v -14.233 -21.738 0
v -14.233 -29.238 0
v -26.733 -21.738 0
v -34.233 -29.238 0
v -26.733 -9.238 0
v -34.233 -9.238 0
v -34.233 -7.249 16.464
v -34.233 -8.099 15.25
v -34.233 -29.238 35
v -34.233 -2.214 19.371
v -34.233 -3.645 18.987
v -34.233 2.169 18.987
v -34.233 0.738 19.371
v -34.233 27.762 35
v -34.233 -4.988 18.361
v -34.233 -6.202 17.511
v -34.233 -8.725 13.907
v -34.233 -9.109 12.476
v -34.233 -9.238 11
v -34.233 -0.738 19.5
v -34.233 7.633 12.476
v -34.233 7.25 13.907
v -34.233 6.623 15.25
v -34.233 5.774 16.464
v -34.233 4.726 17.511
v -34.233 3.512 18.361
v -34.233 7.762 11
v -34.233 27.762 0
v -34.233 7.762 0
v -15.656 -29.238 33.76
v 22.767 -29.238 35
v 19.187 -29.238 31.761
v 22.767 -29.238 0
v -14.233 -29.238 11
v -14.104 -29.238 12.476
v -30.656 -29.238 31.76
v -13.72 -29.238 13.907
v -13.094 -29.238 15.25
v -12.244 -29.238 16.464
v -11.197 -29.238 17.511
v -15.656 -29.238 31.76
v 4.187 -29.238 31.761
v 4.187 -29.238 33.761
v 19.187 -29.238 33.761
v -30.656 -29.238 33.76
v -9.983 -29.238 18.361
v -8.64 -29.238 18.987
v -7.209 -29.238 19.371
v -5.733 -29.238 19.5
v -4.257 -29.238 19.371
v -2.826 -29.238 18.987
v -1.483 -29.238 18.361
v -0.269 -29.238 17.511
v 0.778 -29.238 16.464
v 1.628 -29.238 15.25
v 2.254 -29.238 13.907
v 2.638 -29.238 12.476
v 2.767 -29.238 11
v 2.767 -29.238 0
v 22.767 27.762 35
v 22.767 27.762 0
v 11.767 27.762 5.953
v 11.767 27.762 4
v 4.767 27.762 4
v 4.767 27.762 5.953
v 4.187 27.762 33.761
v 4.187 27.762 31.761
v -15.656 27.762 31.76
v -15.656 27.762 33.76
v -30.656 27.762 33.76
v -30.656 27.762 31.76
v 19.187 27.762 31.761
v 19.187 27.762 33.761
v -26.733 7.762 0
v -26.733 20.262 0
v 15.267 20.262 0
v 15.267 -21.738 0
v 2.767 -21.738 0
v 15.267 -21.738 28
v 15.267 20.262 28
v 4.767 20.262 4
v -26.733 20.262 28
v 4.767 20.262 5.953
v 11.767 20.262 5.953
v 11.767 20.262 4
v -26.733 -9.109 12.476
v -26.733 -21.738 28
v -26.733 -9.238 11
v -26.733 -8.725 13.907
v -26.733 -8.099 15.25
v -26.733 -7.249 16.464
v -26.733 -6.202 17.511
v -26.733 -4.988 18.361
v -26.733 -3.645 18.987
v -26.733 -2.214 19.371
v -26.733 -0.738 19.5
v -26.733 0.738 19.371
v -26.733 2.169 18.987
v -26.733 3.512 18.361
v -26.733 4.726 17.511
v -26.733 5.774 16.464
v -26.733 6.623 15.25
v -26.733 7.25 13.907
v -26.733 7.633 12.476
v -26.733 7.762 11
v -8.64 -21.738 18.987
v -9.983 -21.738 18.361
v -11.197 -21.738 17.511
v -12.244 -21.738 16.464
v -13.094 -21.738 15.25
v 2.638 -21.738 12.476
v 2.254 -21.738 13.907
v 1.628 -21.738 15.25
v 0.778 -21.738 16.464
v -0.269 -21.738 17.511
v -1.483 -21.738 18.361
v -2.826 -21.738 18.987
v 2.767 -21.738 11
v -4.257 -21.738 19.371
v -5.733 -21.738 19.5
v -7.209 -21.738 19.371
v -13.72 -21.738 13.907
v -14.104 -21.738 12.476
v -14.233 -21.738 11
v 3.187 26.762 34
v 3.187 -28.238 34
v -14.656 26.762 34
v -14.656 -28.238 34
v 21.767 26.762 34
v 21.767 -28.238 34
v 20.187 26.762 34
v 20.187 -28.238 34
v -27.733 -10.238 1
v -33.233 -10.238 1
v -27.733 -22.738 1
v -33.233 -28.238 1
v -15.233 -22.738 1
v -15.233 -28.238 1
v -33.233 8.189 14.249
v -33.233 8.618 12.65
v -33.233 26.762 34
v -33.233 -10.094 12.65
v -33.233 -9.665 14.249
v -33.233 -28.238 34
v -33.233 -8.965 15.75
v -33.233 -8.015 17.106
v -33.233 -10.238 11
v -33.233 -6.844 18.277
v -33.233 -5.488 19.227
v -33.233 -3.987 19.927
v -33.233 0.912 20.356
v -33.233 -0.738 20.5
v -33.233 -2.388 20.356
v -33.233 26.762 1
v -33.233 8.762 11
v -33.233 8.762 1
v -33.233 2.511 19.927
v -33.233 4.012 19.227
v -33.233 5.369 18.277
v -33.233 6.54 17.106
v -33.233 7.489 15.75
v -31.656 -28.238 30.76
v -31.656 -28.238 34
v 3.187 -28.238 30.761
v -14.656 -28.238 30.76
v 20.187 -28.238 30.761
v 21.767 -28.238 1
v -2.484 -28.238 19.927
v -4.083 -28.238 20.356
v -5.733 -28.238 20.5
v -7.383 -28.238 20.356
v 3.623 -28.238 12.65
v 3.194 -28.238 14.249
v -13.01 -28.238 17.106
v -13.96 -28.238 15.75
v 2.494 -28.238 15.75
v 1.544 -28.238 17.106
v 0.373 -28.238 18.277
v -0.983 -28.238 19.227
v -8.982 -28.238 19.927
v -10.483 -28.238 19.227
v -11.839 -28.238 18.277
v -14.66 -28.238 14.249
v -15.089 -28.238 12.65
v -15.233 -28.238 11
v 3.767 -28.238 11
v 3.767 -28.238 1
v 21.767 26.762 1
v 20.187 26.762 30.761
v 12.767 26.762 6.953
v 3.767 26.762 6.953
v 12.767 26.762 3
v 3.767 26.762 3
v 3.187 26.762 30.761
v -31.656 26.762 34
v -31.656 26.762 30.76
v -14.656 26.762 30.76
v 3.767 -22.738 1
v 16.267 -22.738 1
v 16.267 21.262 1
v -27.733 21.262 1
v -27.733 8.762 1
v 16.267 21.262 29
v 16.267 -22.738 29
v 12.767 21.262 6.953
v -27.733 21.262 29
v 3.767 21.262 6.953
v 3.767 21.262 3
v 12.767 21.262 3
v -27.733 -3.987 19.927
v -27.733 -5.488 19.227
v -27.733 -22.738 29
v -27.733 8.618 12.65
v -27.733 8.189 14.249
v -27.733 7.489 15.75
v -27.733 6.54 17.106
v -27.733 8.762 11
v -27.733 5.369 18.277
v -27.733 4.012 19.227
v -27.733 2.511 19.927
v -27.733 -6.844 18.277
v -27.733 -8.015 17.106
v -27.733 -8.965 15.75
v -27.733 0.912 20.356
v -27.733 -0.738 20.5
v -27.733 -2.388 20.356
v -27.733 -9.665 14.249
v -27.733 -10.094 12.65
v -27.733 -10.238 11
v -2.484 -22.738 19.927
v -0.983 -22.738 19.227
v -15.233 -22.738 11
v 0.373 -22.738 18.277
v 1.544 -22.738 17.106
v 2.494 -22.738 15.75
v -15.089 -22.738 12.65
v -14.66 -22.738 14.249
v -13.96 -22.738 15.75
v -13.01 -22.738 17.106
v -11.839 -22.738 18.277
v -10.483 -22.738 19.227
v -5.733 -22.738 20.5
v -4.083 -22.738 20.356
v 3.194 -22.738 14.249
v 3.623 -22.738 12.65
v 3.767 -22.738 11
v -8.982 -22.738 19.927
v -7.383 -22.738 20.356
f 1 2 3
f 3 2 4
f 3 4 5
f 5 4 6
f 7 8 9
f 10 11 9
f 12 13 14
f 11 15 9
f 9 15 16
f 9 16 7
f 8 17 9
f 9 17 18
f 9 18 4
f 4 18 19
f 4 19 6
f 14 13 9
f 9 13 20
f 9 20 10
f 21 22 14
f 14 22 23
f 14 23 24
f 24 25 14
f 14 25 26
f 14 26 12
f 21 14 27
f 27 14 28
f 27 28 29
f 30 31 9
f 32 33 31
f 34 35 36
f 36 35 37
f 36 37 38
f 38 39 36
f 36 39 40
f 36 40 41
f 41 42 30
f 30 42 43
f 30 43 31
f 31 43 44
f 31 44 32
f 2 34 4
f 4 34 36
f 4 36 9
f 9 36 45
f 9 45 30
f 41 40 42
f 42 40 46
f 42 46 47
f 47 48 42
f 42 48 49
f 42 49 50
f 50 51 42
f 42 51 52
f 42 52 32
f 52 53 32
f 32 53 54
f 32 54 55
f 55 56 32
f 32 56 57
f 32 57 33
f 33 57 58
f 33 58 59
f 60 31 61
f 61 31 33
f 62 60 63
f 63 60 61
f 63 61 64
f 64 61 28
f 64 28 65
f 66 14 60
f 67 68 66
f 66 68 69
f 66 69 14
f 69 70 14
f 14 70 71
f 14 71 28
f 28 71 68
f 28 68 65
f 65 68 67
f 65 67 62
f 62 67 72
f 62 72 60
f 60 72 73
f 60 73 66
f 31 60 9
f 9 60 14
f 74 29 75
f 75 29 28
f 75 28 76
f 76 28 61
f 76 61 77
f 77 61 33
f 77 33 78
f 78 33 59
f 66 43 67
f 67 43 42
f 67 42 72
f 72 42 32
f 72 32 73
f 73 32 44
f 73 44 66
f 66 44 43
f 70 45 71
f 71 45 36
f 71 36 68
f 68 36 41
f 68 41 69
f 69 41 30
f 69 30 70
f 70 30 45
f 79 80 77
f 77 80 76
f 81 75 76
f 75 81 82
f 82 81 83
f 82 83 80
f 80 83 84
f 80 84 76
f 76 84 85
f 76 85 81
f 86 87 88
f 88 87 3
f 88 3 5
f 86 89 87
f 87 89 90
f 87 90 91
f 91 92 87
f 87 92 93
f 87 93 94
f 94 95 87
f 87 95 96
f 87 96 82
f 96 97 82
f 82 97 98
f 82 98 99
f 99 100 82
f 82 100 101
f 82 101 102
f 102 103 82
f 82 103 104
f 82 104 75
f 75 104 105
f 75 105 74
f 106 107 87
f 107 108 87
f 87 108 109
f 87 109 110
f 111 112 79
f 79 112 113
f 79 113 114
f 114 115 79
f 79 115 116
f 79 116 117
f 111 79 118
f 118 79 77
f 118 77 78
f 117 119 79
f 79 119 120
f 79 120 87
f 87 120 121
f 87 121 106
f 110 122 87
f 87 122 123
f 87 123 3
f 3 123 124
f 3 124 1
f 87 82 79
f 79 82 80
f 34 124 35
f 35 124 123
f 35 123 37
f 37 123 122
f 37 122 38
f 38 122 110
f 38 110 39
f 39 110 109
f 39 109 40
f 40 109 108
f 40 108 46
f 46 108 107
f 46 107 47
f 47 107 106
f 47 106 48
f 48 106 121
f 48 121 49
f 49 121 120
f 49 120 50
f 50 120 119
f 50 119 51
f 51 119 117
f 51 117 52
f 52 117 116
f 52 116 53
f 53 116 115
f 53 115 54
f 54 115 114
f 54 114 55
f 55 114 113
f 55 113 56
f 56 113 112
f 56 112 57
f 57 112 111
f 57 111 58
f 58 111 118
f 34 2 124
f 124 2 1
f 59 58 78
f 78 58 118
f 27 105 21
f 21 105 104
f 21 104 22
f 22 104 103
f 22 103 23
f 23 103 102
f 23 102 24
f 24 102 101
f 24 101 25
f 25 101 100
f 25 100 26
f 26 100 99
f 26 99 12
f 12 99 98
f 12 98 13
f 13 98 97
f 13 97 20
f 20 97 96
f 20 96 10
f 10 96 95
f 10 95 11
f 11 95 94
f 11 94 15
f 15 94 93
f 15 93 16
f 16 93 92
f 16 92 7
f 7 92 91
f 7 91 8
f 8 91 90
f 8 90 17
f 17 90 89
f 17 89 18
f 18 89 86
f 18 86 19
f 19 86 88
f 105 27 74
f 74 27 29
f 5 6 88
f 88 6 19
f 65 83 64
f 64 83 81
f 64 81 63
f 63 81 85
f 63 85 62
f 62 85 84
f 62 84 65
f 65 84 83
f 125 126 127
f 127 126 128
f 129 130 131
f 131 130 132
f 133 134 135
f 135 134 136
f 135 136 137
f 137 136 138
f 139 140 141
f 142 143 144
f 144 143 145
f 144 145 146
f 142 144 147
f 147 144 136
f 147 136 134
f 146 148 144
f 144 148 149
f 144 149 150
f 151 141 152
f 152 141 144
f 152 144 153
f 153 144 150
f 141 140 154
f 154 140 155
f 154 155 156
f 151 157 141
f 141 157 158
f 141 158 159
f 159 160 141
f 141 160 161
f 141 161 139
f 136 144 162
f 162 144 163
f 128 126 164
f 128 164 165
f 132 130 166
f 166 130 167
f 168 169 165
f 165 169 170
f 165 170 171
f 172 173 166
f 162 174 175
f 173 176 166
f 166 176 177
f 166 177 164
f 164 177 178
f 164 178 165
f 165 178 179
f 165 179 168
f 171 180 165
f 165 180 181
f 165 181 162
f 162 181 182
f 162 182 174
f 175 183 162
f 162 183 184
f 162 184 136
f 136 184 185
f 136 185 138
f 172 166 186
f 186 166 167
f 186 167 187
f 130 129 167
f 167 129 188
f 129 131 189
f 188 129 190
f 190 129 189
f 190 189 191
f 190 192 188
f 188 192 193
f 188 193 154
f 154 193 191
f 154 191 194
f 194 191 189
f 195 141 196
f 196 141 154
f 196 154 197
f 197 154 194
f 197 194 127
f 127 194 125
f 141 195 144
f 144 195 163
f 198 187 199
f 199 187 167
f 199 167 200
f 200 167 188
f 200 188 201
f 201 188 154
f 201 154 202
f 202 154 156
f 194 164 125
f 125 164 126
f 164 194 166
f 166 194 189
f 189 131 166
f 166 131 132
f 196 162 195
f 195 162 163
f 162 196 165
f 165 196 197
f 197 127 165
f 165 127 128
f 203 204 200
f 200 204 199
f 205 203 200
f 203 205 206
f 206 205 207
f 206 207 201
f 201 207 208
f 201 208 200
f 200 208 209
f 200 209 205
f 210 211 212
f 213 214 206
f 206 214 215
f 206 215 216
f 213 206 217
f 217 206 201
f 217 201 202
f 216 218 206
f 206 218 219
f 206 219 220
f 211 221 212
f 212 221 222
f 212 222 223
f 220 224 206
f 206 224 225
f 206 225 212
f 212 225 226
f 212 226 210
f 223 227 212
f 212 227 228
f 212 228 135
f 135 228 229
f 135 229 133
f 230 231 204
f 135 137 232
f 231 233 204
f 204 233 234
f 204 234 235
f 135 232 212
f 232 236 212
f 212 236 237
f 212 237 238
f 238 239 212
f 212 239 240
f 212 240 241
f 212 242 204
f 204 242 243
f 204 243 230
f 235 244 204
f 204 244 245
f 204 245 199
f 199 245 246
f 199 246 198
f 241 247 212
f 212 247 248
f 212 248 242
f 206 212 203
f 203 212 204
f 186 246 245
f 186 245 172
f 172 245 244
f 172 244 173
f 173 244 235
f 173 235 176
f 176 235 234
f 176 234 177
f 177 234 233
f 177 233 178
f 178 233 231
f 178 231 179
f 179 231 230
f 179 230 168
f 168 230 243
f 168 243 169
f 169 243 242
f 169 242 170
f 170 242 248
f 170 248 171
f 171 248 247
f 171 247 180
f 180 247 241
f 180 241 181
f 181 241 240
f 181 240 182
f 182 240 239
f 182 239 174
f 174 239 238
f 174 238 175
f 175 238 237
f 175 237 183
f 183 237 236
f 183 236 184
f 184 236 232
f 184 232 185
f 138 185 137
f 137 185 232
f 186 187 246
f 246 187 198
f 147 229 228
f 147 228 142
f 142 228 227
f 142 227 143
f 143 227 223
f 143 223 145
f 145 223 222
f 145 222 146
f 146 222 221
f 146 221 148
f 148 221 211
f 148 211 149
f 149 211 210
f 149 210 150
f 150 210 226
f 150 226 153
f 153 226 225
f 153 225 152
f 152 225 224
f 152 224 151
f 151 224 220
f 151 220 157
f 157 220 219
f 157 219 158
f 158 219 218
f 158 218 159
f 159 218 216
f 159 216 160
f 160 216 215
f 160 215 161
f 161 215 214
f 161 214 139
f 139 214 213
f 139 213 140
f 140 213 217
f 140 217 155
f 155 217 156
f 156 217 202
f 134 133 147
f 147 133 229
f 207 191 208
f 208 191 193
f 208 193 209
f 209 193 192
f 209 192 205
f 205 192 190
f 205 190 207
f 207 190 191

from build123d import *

# Parameters (mm, degrees)
SKETCH2_W           = 57
SKETCH2_H           = 57
BOSS_EXTRUDE1_DEPTH = 35
SKETCH3_W           = 15
SKETCH3_H           = 2
CUT_EXTRUDE1_DEPTH  = 60
SKETCH4_W           = 42
SKETCH4_H           = 42
CUT_EXTRUDE2_DEPTH  = 28
CUT_EXTRUDE4_DEPTH  = 5
CUT_EXTRUDE5_DEPTH  = 10
CUT_EXTRUDE6_DEPTH  = 5
SKETCH13_W          = 7
SKETCH13_H          = 1.952566844
CUT_EXTRUDE8_DEPTH  = 12
SHELL3_START        = 21.262135922
SHELL3_OUTLINE_W    = 9
SHELL3_OUTLINE_H    = 3.952566844
SHELL3_DEPTH        = 5.5
SHELL3_START_2      = -28.237864078
SHELL3_2_DEPTH      = 18
SHELL3_START_3      = 8.762135922
SHELL3_3_DEPTH      = 12.5
SHELL3_4_DEPTH      = 5.5
SHELL3_START_4      = 16.266990291
SHELL3_5_OUTLINE_W  = 19
SHELL3_5_OUTLINE_H  = 29.761209032
SHELL3_5_DEPTH      = 5.5
SHELL3_START_5      = -14.656416284
SHELL3_6_OUTLINE_W  = 19
SHELL3_6_OUTLINE_H  = 5
SHELL3_6_DEPTH      = 17.843406575
SHELL3_START_6      = -33.233009709
SHELL3_7_DEPTH      = 5.5
SHELL3_START_7      = -27.733009709
SHELL3_8_OUTLINE_W  = 19
SHELL3_8_OUTLINE_H  = 1.76
SHELL3_8_DEPTH      = 44
SHELL3_START_8      = 20.186990291
SHELL3_9_OUTLINE_W  = 19
SHELL3_9_OUTLINE_H  = 3.238790968
SHELL3_9_DEPTH      = 1.58
SHELL3_10_OUTLINE_W = 19
SHELL3_10_OUTLINE_H = 3.24
SHELL3_10_DEPTH     = 1.576593425
SHELL3_START_9      = 3.186990291
SHELL3_11_OUTLINE_W = 19
SHELL3_11_OUTLINE_H = 0.001209032
SHELL3_11_DEPTH     = 13.08


with BuildPart() as part:
    # Sketch2 → Boss-Extrude1 (new body)
    with BuildSketch(Plane.XY):
        with Locations((-5.733009709, -0.737864078)):
            Rectangle(SKETCH2_W, SKETCH2_H)
    extrude(amount=BOSS_EXTRUDE1_DEPTH)

    # Sketch3 → Cut-Extrude1 (cut)
    with BuildSketch(Plane(origin=(0, 27.762135922, 0), x_dir=(1, 0, 0), z_dir=(0, 1, 0))):
        with Locations((-23.156416284, -32.76)):
            Rectangle(SKETCH3_W, SKETCH3_H)
        with Locations((11.686990291, -32.761209032)):
            Rectangle(SKETCH3_W, SKETCH3_H)
    extrude(amount=-CUT_EXTRUDE1_DEPTH, mode=Mode.SUBTRACT)

    # Sketch4 → Cut-Extrude2 (cut)
    with BuildSketch(Plane(origin=(0, 0, 0), x_dir=(-1, 0, 0), z_dir=(0, 0, -1))):
        with Locations((5.733009709, -0.737864078)):
            Rectangle(SKETCH4_W, SKETCH4_H)
    extrude(amount=-CUT_EXTRUDE2_DEPTH, mode=Mode.SUBTRACT)

    # Sketch5 → Cut-Extrude4 (cut)
    with BuildSketch(Plane(origin=(0, -21.737864078, 0), x_dir=(1, 0, 0), z_dir=(0, 1, 0))):
        with BuildLine():
            Line((2.766990291, -11), (2.766990291, 0))
            Line((2.766990291, 0), (-14.233009709, 0))
            Line((-14.233009709, 0), (-14.233009709, -11))
            ThreePointArc((-14.233009709, -11), (-5.733009709, -19.5), (2.766990291, -11))
        make_face()
    extrude(amount=-CUT_EXTRUDE4_DEPTH, mode=Mode.SUBTRACT)

    # Sketch7 → Cut-Extrude5 (cut)
    with BuildSketch(Plane(origin=(-26.733009709, 0, 0), x_dir=(0, 0, -1), z_dir=(1, 0, 0))):
        with BuildLine():
            Line((-11, -9.237864078), (0, -9.237864078))
            Line((0, -9.237864078), (0, 7.762135922))
            Line((0, 7.762135922), (-11, 7.762135922))
            ThreePointArc((-11, 7.762135922), (-19.5, -0.737864078), (-11, -9.237864078))
        make_face()
    extrude(amount=-CUT_EXTRUDE5_DEPTH, mode=Mode.SUBTRACT)

    # Sketch8 → Cut-Extrude6 (cut)
    with BuildSketch(Plane(origin=(0, -26.737864078, 0), x_dir=(1, 0, 0), z_dir=(0, 1, 0))):
        with BuildLine():
            Line((-14.233009709, 0), (2.766990291, 0))
            Line((2.766990291, 0), (2.766990291, -11))
            ThreePointArc((2.766990291, -11), (-5.733009709, -19.5), (-14.233009709, -11))
            Line((-14.233009709, -11), (-14.233009709, 0))
        make_face()
    extrude(amount=-CUT_EXTRUDE6_DEPTH, mode=Mode.SUBTRACT)

    # Sketch13 → Cut-Extrude8 (cut)
    with BuildSketch(Plane(origin=(0, 27.762135922, 0), x_dir=(1, 0, 0), z_dir=(0, 1, 0))):
        with Locations((8.266990291, -4.976283422)):
            Rectangle(SKETCH13_W, SKETCH13_H)
    extrude(amount=-CUT_EXTRUDE8_DEPTH, mode=Mode.SUBTRACT)

    # Shell3: read off the stored shape, not the designer's step
    # Shell3 outline → Shell3 (cut)
    with BuildSketch(Plane(origin=(0, 0, 0), x_dir=(1, 0, 0), z_dir=(0, 1, 0)).offset(SHELL3_START)):
        Polygon((-14.656416284, -30.76), (-14.656416284, -34), (3.186990291, -34), (3.186990291, -30.761209032), (20.186990291, -30.761209032), (20.186990291, -34), (21.766990291, -34), (21.766990291, -1), (-33.233009709, -1), (-33.233009709, -34), (-31.656416284, -34), (-31.656416284, -30.76), align=None)
        with Locations((8.266990291, -4.976283422)):
            Rectangle(SHELL3_OUTLINE_W, SHELL3_OUTLINE_H, mode=Mode.SUBTRACT)
    extrude(amount=SHELL3_DEPTH, mode=Mode.SUBTRACT)

    # Shell3 2 outline → Shell3 2 (cut)
    with BuildSketch(Plane(origin=(0, 0, 0), x_dir=(1, 0, 0), z_dir=(0, 1, 0)).offset(SHELL3_START_2)):
        Polygon((-14.656416284, -30.76), (-14.656416284, -34), (3.186990291, -34), (3.186990291, -30.761209032), (20.186990291, -30.761209032), (20.186990291, -34), (21.766990291, -34), (21.766990291, -1), (16.266990291, -1), (16.266990291, -29), (-27.733009709, -29), (-27.733009709, -1), (-33.233009709, -1), (-33.233009709, -34), (-31.656416284, -34), (-31.656416284, -30.76), align=None)
    extrude(amount=SHELL3_2_DEPTH, mode=Mode.SUBTRACT)

    # Shell3 3 outline → Shell3 3 (cut)
    with BuildSketch(Plane(origin=(0, 0, 0), x_dir=(1, 0, 0), z_dir=(0, 1, 0)).offset(SHELL3_START_3)):
        Polygon((-14.656416284, -30.76), (-14.656416284, -34), (3.186990291, -34), (3.186990291, -30.761209032), (20.186990291, -30.761209032), (20.186990291, -34), (21.766990291, -34), (21.766990291, -1), (16.266990291, -1), (16.266990291, -29), (-27.733009709, -29), (-27.733009709, -1), (-33.233009709, -1), (-33.233009709, -34), (-31.656416284, -34), (-31.656416284, -30.76), align=None)
    extrude(amount=SHELL3_3_DEPTH, mode=Mode.SUBTRACT)

    # Shell3 4 outline → Shell3 4 (cut)
    with BuildSketch(Plane(origin=(0, 0, 0), x_dir=(1, 0, 0), z_dir=(0, 1, 0)).offset(SHELL3_START_2)):
        with BuildLine():
            Line((-15.233009709, -1), (-27.733009709, -1))
            Line((-27.733009709, -1), (-27.733009709, -29))
            Line((-27.733009709, -29), (16.266990291, -29))
            Line((16.266990291, -29), (16.266990291, -1))
            Line((16.266990291, -1), (3.766990291, -1))
            Line((3.766990291, -1), (3.766990291, -11))
            ThreePointArc((3.766990291, -11), (-5.733009709, -20.5), (-15.233009709, -11))
            Line((-15.233009709, -11), (-15.233009709, -1))
        make_face()
    extrude(amount=SHELL3_4_DEPTH, mode=Mode.SUBTRACT)

    # Shell3 5 outline → Shell3 5 (cut)
    with BuildSketch(Plane.YZ.offset(SHELL3_START_4)):
        with Locations((-0.737864078, 15.880604516)):
            Rectangle(SHELL3_5_OUTLINE_W, SHELL3_5_OUTLINE_H)
    extrude(amount=SHELL3_5_DEPTH, mode=Mode.SUBTRACT)

    # Shell3 6 outline → Shell3 6 (cut)
    with BuildSketch(Plane.YZ.offset(SHELL3_START_5)):
        with Locations((-0.737864078, 31.5)):
            Rectangle(SHELL3_6_OUTLINE_W, SHELL3_6_OUTLINE_H)
    extrude(amount=SHELL3_6_DEPTH, mode=Mode.SUBTRACT)

    # Shell3 7 outline → Shell3 7 (cut)
    with BuildSketch(Plane.YZ.offset(SHELL3_START_6)):
        with BuildLine():
            Line((8.762135922, 30.76), (-10.237864078, 30.76))
            Line((-10.237864078, 30.76), (-10.237864078, 11))
            ThreePointArc((-10.237864078, 11), (-0.737864078, 20.5), (8.762135922, 11))
            Line((8.762135922, 11), (8.762135922, 30.76))
        make_face()
    extrude(amount=SHELL3_7_DEPTH, mode=Mode.SUBTRACT)

    # Shell3 8 outline → Shell3 8 (cut)
    with BuildSketch(Plane.YZ.offset(SHELL3_START_7)):
        with Locations((-0.737864078, 29.88)):
            Rectangle(SHELL3_8_OUTLINE_W, SHELL3_8_OUTLINE_H)
    extrude(amount=SHELL3_8_DEPTH, mode=Mode.SUBTRACT)

    # Shell3 9 outline → Shell3 9 (cut)
    with BuildSketch(Plane.YZ.offset(SHELL3_START_8)):
        with Locations((-0.737864078, 32.380604516)):
            Rectangle(SHELL3_9_OUTLINE_W, SHELL3_9_OUTLINE_H)
    extrude(amount=SHELL3_9_DEPTH, mode=Mode.SUBTRACT)

    # Shell3 10 outline → Shell3 10 (cut)
    with BuildSketch(Plane.YZ.offset(SHELL3_START_6)):
        with Locations((-0.737864078, 32.38)):
            Rectangle(SHELL3_10_OUTLINE_W, SHELL3_10_OUTLINE_H)
    extrude(amount=SHELL3_10_DEPTH, mode=Mode.SUBTRACT)

    # Shell3 11 outline → Shell3 11 (cut)
    with BuildSketch(Plane.YZ.offset(SHELL3_START_9)):
        with Locations((-0.737864078, 30.760604516)):
            Rectangle(SHELL3_11_OUTLINE_W, SHELL3_11_OUTLINE_H)
    extrude(amount=SHELL3_11_DEPTH, mode=Mode.SUBTRACT)


solid = part.part
